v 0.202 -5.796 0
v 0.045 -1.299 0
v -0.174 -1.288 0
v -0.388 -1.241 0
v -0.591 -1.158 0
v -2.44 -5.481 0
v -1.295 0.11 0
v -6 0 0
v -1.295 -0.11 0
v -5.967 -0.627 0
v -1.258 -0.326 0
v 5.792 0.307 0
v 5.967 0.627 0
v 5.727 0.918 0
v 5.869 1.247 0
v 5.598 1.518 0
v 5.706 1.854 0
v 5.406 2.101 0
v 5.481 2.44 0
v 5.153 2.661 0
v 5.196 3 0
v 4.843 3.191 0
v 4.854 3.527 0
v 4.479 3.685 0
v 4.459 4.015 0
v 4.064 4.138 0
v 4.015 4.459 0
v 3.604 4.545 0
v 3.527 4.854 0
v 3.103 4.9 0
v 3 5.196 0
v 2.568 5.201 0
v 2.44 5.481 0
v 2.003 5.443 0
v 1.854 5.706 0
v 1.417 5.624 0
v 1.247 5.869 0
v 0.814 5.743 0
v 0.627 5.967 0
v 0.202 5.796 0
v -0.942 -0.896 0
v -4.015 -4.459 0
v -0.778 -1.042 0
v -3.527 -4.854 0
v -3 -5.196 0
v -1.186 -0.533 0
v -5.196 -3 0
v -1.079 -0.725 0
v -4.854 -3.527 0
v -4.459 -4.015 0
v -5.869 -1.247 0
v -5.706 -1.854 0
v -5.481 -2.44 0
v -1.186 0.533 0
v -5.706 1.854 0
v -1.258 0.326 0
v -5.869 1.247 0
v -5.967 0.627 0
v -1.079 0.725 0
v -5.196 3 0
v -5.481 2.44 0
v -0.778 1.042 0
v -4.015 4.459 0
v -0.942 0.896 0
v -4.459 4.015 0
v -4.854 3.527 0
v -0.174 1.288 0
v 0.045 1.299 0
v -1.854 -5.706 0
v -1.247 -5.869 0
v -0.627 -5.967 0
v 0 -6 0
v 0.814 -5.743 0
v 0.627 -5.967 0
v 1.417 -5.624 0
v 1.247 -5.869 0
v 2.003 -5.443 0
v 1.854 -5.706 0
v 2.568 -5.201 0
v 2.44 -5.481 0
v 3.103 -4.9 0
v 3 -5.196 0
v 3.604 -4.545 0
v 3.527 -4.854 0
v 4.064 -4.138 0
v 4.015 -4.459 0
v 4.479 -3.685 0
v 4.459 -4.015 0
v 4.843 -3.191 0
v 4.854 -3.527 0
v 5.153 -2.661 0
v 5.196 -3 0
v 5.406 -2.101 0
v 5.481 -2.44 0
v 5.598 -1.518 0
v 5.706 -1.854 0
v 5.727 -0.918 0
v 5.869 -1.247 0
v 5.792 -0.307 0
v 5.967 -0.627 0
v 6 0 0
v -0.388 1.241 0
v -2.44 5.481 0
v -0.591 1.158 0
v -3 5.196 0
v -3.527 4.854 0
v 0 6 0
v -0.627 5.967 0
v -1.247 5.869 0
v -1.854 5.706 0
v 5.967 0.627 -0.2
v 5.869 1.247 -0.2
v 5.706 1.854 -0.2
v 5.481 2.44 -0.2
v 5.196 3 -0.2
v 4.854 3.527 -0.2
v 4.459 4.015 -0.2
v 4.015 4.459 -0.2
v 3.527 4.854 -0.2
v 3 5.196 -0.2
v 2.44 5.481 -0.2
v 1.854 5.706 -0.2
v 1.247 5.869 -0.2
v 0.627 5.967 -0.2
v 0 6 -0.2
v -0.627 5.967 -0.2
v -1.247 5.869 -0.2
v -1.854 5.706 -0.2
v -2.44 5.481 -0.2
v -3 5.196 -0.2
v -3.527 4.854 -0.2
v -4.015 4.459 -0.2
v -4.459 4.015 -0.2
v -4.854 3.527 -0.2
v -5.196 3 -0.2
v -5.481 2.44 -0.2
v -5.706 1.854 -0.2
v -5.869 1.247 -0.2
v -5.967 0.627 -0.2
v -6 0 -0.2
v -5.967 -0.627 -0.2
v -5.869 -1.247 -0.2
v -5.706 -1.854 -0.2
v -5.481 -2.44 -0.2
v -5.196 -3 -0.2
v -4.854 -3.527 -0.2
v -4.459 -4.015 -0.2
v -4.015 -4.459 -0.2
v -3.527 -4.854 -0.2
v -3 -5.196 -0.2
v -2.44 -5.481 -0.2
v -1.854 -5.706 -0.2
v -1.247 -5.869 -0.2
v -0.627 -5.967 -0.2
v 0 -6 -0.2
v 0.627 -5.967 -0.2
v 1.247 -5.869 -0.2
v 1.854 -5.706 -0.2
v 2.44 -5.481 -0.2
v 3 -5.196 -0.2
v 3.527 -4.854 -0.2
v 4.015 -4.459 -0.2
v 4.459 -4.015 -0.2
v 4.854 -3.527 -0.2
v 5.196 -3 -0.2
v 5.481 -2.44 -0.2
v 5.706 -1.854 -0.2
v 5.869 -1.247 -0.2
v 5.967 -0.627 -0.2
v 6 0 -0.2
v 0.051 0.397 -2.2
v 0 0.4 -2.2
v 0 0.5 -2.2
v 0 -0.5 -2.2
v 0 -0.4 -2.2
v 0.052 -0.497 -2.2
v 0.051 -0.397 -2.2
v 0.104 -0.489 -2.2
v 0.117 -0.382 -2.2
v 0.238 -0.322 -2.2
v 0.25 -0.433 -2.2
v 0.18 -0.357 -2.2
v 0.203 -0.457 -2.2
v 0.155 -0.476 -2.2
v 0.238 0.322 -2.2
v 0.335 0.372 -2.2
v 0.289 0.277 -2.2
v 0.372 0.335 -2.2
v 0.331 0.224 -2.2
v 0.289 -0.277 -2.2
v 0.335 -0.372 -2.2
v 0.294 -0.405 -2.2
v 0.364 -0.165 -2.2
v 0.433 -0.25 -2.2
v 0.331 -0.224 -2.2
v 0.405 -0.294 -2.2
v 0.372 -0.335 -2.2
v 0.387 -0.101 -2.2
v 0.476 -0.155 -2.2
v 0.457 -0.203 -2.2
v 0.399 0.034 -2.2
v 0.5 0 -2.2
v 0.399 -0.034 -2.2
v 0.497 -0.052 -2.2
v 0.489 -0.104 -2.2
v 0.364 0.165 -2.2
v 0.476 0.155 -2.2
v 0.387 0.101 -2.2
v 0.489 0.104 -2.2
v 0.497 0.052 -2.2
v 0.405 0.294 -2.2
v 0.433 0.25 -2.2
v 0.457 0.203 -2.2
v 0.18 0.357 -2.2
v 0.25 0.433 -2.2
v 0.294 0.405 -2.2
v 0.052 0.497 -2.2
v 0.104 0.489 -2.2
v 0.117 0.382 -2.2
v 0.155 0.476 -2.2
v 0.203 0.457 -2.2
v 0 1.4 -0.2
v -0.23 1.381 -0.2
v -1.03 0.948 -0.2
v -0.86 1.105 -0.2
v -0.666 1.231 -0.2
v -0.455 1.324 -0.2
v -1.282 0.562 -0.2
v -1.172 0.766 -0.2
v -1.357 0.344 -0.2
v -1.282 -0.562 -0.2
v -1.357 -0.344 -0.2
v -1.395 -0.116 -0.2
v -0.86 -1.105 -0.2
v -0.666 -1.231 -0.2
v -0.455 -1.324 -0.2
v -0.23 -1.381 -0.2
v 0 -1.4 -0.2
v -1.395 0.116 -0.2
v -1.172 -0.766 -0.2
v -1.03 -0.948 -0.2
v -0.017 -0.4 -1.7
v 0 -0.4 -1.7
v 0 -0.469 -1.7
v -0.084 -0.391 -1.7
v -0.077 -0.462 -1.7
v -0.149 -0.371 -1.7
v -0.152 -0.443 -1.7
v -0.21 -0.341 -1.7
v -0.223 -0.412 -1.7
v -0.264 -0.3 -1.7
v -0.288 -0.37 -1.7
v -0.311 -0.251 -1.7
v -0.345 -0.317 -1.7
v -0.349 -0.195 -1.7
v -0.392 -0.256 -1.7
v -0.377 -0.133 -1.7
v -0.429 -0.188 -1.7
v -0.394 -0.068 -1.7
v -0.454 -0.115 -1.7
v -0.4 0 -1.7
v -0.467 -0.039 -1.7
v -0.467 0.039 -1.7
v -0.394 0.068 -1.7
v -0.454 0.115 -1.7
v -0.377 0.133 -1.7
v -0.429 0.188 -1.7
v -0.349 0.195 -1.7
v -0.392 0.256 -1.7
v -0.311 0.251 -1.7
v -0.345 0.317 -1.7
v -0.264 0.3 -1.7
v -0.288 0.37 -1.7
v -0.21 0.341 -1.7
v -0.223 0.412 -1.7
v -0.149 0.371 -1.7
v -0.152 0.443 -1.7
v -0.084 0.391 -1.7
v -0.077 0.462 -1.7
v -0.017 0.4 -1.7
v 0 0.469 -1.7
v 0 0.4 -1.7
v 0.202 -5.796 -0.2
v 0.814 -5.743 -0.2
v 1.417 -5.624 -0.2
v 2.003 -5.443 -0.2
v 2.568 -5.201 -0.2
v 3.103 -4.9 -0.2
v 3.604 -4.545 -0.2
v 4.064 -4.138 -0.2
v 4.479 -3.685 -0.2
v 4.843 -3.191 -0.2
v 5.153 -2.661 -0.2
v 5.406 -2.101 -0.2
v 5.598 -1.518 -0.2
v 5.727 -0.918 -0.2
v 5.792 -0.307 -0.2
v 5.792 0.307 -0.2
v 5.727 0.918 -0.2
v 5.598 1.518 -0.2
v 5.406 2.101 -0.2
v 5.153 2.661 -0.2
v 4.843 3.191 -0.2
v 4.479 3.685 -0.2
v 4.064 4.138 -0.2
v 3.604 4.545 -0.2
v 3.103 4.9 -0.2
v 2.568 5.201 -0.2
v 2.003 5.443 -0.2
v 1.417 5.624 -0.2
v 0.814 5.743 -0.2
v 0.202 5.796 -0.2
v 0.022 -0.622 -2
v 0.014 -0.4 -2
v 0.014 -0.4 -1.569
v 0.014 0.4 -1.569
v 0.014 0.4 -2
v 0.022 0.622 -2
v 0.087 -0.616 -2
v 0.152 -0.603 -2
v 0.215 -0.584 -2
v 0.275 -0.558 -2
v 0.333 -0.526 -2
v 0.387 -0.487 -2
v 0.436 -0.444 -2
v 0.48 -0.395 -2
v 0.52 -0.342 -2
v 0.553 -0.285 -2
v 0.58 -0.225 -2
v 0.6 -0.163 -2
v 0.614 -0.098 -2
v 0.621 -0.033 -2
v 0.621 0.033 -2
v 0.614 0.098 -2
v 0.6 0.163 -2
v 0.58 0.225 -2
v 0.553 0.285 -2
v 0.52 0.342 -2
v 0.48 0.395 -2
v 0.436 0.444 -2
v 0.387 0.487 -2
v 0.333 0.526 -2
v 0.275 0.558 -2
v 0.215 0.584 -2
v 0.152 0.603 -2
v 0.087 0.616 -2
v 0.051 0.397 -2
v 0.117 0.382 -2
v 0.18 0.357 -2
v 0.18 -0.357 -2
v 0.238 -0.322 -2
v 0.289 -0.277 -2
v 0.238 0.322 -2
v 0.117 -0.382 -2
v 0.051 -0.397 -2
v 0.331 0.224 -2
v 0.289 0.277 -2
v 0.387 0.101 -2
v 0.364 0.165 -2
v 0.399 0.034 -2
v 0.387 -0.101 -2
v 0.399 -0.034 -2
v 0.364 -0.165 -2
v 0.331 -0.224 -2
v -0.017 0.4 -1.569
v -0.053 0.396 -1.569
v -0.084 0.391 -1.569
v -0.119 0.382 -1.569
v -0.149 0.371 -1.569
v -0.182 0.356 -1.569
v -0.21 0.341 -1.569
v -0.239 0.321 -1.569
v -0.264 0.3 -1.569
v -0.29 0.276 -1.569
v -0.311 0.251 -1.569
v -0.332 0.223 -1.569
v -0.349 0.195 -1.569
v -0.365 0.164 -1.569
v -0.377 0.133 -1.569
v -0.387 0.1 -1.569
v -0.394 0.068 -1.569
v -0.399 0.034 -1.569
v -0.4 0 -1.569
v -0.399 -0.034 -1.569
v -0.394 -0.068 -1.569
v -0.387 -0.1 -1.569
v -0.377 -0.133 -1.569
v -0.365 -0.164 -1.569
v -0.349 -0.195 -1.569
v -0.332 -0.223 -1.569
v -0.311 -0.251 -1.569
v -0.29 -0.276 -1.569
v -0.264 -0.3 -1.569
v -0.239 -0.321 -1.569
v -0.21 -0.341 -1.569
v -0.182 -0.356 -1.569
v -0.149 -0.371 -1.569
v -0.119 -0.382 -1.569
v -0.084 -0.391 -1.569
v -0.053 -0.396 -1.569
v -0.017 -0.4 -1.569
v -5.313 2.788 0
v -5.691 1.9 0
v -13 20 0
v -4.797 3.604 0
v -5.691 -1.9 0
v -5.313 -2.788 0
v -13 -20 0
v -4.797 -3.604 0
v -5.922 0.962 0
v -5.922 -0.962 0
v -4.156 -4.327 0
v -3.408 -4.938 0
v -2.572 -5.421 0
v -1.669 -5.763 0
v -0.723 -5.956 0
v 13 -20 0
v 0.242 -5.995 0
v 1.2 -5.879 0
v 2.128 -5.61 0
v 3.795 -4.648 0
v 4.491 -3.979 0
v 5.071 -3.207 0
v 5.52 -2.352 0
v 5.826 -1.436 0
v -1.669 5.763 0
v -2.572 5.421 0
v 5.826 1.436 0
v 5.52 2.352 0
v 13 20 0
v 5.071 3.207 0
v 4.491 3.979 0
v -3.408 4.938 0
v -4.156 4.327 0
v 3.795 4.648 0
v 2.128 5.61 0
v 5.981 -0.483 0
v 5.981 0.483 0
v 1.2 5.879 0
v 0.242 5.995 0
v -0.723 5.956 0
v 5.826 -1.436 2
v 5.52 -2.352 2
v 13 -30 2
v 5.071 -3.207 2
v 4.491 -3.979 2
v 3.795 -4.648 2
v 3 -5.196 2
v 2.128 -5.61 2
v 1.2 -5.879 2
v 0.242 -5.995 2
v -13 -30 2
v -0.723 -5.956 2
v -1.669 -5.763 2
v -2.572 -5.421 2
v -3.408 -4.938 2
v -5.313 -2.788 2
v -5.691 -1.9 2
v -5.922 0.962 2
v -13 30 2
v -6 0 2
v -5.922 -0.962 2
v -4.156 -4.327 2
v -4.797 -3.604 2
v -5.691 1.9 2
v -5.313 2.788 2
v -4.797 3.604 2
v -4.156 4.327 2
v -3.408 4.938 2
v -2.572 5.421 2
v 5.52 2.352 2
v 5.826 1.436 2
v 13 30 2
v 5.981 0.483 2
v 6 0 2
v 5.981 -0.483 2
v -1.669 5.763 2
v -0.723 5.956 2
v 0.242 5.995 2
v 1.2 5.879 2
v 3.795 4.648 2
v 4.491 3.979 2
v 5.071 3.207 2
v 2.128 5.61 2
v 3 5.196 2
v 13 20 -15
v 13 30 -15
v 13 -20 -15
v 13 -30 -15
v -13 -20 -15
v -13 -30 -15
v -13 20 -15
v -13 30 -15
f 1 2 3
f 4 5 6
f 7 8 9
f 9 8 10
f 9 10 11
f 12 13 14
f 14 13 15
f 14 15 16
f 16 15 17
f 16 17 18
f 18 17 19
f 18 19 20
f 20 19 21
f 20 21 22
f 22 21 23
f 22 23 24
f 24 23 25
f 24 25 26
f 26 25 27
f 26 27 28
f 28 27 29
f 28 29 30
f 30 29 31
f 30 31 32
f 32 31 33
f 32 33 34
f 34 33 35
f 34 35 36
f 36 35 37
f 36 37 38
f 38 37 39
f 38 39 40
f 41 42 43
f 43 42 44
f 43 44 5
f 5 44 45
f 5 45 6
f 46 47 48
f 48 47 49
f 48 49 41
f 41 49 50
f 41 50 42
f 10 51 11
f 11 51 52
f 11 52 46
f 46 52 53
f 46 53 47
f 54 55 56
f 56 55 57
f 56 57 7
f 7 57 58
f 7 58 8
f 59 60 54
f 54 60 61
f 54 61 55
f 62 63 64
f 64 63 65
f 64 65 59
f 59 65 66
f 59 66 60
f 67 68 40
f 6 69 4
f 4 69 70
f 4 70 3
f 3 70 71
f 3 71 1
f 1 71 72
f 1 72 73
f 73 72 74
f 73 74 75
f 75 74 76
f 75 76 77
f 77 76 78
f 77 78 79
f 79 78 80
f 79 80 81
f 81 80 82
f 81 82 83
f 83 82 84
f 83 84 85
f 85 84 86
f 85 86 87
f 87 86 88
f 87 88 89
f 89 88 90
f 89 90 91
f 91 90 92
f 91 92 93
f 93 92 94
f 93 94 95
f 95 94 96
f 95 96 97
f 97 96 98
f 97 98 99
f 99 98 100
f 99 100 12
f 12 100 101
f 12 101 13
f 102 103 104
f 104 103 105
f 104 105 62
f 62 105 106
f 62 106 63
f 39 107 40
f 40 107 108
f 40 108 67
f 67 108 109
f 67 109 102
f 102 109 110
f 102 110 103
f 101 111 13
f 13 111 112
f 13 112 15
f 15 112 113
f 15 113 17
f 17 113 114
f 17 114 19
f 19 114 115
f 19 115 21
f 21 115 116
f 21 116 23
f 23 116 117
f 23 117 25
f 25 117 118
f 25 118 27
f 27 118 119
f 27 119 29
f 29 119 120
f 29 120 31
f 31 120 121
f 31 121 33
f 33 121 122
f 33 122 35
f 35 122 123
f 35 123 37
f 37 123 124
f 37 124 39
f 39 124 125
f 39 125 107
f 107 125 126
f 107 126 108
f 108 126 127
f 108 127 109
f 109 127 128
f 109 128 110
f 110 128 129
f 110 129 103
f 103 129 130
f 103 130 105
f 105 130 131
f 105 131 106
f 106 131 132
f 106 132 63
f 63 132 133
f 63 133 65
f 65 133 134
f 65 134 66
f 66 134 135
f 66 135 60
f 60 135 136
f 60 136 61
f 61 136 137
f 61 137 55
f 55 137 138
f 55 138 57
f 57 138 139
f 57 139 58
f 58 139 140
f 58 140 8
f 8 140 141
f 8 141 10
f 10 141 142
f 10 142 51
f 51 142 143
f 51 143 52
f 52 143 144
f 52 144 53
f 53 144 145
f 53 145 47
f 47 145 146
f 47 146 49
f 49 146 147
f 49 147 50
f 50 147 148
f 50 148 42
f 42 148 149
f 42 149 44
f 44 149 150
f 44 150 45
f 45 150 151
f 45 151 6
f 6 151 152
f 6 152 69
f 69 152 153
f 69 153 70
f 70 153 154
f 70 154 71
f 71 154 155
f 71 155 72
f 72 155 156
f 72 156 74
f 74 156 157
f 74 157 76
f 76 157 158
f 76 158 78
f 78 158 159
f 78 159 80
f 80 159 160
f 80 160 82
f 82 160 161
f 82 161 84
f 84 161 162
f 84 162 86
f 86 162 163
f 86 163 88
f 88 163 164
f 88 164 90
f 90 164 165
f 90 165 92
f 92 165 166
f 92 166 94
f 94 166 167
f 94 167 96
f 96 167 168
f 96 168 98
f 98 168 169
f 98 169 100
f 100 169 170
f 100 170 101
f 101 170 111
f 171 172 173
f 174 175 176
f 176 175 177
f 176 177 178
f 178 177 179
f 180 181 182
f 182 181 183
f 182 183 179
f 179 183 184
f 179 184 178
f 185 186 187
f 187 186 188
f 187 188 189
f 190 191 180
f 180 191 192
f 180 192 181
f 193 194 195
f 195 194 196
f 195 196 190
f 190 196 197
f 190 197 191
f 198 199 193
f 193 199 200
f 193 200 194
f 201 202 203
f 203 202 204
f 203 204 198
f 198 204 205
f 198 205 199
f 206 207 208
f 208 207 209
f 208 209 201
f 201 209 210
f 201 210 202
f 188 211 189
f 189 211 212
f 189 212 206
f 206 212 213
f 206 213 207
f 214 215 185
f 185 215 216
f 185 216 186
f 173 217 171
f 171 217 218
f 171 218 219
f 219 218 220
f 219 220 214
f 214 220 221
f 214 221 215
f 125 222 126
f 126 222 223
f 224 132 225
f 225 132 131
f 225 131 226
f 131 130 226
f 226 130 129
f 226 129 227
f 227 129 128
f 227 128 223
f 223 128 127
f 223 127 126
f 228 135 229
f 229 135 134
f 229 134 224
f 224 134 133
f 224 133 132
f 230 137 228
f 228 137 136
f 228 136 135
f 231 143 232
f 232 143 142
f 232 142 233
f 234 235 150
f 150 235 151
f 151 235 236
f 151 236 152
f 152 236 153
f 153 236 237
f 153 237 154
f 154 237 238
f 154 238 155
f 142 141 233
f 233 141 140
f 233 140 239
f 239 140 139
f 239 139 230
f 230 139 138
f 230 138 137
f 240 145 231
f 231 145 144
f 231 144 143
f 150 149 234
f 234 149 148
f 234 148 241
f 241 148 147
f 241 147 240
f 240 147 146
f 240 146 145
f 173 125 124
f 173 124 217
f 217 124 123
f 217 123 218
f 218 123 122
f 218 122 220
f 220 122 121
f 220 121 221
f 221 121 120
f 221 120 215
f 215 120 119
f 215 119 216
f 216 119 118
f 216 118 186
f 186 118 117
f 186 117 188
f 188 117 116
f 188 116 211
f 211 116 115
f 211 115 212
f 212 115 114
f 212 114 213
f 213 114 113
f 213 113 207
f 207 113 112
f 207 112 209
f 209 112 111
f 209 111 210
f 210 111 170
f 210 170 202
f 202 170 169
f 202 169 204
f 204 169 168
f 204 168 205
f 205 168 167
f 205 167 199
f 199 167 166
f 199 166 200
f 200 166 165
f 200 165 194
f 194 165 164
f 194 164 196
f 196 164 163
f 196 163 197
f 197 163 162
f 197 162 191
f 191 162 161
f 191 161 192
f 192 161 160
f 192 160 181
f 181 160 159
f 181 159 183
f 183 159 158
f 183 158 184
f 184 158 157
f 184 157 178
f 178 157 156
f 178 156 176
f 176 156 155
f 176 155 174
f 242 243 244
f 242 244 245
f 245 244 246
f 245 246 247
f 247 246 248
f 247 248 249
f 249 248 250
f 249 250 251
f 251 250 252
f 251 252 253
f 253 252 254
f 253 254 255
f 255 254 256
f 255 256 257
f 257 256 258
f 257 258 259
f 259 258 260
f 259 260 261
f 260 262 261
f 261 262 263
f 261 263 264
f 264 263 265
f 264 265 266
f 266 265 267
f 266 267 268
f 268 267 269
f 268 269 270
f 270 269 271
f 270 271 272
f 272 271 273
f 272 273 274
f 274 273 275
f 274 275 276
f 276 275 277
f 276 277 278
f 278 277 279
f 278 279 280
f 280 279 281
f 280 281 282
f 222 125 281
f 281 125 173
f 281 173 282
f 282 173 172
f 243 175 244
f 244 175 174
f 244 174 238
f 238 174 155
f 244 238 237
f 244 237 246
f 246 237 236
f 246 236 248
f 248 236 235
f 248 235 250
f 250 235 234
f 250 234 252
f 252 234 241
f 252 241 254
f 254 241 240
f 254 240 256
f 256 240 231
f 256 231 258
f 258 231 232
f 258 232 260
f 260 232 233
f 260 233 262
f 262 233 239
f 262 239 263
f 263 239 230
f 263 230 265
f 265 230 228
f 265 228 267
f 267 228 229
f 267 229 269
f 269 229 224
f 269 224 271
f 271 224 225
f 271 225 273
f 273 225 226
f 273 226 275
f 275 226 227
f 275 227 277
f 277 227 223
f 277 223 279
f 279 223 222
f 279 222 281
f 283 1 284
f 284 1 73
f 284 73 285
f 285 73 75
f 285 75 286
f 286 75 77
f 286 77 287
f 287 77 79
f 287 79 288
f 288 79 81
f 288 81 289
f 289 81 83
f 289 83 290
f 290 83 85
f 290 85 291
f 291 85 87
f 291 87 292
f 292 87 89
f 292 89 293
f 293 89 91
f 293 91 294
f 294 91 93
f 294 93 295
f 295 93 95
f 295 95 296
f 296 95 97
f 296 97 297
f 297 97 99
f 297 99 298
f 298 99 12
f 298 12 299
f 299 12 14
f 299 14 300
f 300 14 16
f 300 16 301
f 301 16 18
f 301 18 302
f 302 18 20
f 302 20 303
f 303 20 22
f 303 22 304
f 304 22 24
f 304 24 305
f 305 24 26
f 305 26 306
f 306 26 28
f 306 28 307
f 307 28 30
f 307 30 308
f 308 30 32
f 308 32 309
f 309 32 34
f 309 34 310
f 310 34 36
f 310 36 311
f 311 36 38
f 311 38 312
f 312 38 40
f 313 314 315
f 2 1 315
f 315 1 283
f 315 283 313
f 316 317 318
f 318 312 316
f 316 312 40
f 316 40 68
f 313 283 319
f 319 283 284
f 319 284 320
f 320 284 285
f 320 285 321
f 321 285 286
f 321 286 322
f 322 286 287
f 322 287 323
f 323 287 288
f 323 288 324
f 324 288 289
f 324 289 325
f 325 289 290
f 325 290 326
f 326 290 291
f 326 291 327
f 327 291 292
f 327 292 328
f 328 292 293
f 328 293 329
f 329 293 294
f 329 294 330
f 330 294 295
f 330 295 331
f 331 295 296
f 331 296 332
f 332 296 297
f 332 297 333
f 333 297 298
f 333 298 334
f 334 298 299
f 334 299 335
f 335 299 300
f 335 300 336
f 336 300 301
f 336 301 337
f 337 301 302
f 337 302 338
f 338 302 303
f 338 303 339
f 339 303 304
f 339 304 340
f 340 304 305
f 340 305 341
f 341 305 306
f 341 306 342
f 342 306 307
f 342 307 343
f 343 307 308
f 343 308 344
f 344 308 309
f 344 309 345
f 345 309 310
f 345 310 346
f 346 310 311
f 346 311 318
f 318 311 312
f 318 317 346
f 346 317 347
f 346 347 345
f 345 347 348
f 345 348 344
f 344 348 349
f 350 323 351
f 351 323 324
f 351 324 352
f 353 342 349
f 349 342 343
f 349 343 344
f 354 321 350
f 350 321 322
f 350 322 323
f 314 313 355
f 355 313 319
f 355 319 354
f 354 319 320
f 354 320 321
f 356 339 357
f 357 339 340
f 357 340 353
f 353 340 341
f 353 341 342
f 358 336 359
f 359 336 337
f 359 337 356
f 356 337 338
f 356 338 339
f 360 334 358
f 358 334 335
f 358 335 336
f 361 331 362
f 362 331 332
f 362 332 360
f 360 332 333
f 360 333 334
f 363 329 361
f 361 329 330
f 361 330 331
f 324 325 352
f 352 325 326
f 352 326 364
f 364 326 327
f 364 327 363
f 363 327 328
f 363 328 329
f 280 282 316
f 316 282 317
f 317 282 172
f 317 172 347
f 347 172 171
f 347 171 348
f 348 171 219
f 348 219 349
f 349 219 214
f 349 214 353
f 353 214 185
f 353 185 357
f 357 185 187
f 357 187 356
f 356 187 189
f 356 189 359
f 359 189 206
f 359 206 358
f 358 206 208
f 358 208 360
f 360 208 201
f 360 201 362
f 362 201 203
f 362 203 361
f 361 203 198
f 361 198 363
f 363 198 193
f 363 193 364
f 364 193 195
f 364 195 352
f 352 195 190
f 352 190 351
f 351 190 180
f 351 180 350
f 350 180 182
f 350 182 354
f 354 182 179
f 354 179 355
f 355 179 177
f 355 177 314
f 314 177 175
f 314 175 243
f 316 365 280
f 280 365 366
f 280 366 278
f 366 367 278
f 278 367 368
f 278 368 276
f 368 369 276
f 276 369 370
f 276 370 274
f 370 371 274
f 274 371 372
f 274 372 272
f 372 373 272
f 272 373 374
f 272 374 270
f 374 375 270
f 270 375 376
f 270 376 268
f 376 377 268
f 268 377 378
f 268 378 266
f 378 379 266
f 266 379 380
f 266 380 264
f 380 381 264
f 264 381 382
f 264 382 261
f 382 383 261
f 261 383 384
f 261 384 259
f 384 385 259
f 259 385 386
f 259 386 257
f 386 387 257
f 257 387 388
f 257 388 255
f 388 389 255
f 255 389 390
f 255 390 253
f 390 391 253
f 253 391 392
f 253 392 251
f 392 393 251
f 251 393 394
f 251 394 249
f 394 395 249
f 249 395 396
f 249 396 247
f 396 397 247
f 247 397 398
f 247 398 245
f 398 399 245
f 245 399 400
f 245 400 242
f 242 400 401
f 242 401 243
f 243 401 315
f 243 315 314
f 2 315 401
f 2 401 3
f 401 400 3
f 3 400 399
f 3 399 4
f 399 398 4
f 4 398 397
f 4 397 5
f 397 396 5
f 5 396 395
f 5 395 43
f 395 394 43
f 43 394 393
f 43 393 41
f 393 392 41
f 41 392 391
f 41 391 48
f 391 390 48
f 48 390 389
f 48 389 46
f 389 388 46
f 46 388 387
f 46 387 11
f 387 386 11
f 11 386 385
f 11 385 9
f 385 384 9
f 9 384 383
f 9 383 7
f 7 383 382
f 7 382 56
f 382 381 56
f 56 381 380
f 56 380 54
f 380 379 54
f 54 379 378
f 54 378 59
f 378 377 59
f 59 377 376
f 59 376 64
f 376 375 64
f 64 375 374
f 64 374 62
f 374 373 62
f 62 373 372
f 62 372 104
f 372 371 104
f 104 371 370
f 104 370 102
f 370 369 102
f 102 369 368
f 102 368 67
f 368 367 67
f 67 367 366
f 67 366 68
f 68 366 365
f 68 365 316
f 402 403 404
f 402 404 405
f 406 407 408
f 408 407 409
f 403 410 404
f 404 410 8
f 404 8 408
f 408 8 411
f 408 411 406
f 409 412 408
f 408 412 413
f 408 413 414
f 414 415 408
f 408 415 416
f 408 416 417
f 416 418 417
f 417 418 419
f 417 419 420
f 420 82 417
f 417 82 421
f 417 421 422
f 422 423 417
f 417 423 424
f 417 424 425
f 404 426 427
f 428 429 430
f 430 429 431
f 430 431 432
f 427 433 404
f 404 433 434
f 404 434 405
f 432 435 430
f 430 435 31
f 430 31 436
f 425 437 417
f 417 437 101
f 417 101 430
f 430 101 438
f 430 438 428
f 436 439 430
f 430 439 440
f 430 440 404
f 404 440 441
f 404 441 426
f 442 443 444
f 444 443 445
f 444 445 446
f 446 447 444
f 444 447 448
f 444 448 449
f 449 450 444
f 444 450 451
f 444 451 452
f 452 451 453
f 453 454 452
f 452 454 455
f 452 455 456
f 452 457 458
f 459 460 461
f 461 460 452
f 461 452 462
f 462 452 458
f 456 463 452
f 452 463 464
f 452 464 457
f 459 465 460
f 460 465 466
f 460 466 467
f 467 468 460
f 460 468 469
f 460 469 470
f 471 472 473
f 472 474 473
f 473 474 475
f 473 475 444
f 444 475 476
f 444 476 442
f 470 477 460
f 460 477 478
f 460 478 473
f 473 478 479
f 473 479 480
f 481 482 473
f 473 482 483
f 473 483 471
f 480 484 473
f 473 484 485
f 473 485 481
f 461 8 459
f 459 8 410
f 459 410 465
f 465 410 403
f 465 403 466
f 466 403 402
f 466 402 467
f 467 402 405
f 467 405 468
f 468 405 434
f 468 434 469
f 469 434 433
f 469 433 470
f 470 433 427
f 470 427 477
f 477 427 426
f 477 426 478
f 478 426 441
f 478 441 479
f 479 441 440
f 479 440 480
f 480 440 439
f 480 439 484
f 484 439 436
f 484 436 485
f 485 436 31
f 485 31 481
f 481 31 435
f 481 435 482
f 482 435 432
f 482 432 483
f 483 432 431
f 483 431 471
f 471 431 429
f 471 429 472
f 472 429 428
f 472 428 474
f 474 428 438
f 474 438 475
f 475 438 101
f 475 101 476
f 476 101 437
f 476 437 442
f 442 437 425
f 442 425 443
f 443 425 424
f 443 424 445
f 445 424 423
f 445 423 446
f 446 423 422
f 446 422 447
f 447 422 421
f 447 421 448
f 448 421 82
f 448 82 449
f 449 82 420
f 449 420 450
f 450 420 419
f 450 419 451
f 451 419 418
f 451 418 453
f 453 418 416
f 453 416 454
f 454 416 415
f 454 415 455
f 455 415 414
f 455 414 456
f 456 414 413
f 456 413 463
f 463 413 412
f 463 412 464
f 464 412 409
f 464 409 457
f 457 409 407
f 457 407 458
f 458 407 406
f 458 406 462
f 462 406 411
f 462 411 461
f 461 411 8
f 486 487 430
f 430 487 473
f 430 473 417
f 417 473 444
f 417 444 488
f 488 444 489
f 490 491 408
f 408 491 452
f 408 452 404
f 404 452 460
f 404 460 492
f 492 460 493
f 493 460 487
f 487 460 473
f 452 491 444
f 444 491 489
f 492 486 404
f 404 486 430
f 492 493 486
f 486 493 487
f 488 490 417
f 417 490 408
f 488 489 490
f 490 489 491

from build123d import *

# Parameters (mm, degrees)
SKETCH_1_W                    = 60
SKETCH_1_H                    = 26
SKETCH_1_R                    = 6
EXTRUDE_1_DEPTH               = 2
SKETCH_3_R                    = 6
EXTRUDE_3_DEPTH               = 2.2
SKETCH_5_W                    = 4.6
SKETCH_5_H                    = 2
CUT_EXTRUDE_1_DEPTH           = 6
SKETCH_7_R                    = 0.2
CUT_EXTRUDE_2_DEPTH           = 12
CUT_REVOLVE_4_ANGLE           = 90
CUT_REVOLVE_4_OTHER_WAY_ANGLE = 90
CUT_REVOLVE_5_ANGLE           = 90
CUT_REVOLVE_5_OTHER_WAY_ANGLE = 90
CUT_REVOLVE_6_ANGLE           = 88
CUT_REVOLVE_6_OTHER_WAY_ANGLE = 88
SKETCH_16_R                   = 0.4
CUT_EXTRUDE_4_DEPTH           = 0.7
SKETCH_20_W                   = 17
SKETCH_20_H                   = 26
CUT_EXTRUDE_5_DEPTH           = 10
SKETCH_21_W                   = 26
SKETCH_21_H                   = 2
EXTRUDE_4_DEPTH               = 17
SKETCH_22_W                   = 26
SKETCH_22_H                   = 2
EXTRUDE_6_DEPTH               = 17
SKETCH_23_W                   = 26
SKETCH_23_H                   = 10
EXTRUDE_7_DEPTH               = 15


with BuildPart() as part:
    # 草图1 → 凸台-拉伸1 (new body)
    with BuildSketch(Plane.XY):
        Rectangle(SKETCH_1_W, SKETCH_1_H)
        Circle(SKETCH_1_R, mode=Mode.SUBTRACT)
    extrude(amount=EXTRUDE_1_DEPTH)

    # 草图20 → 切除-拉伸5 (cut)
    with BuildSketch(Plane.XY.offset(2)):
        with Locations((-21.5, 0)):
            Rectangle(SKETCH_20_W, SKETCH_20_H)
        with Locations((21.5, 0)):
            Rectangle(SKETCH_20_W, SKETCH_20_H)
    extrude(amount=-CUT_EXTRUDE_5_DEPTH, mode=Mode.SUBTRACT)

    # 草图21 → 凸台-拉伸4 (add)
    with BuildSketch(Plane(origin=(0, 13, 0), x_dir=(1, 0, 0), z_dir=(0, 1, 0))):
        with Locations((0, -1)):
            Rectangle(SKETCH_21_W, SKETCH_21_H)
    extrude(amount=EXTRUDE_4_DEPTH)

    # 草图22 → 凸台-拉伸6 (add)
    with BuildSketch(Plane.XZ.offset(13)):
        with Locations((0, 1)):
            Rectangle(SKETCH_22_W, SKETCH_22_H)
    extrude(amount=EXTRUDE_6_DEPTH)

    # 草图23 → 凸台-拉伸7 (add)
    with BuildSketch(Plane(origin=(0, 0, 0), x_dir=(-1, 0, 0), z_dir=(0, 0, -1))):
        with Locations((0, 25)):
            Rectangle(SKETCH_23_W, SKETCH_23_H)
        with Locations((0, -25)):
            Rectangle(SKETCH_23_W, SKETCH_23_H)
    extrude(amount=EXTRUDE_7_DEPTH)


with BuildPart() as body_2:
    # 草图3 → 凸台-拉伸3 (new body)
    with BuildSketch(Plane(origin=(0, 0, 0), x_dir=(-1, 0, 0), z_dir=(0, 0, -1))):
        Circle(SKETCH_3_R)
    extrude(amount=EXTRUDE_3_DEPTH)

    # 草图5 → 切除-拉伸1 (cut, symmetric)
    with BuildSketch(Plane(origin=(0, 0, 0), x_dir=(1, 0, 0), z_dir=(0, 1, 0))):
        with Locations((-3.7, 1.2)):
            Rectangle(SKETCH_5_W, SKETCH_5_H)
    extrude(amount=CUT_EXTRUDE_1_DEPTH, both=True, mode=Mode.SUBTRACT)

    # 草图7 → 切除-拉伸2 (cut)
    with BuildSketch(Plane(origin=(0, 0, -2.2), x_dir=(-1, 0, 0), z_dir=(0, 0, -1))):
        Circle(SKETCH_7_R)
    extrude(amount=-CUT_EXTRUDE_2_DEPTH, mode=Mode.SUBTRACT)

    # 草图6 → 切除-旋转4 (revolve, cut)
    with BuildSketch(Plane(origin=(0, 0, 0), x_dir=(1, 0, 0), z_dir=(0, 1, 0))):
        Polygon((0.5, 2.2), (6, 2.2), (6, 0.2), align=None)
    revolve(axis=Axis((0, 0, 0), (0, 0, -1)), revolution_arc=CUT_REVOLVE_4_ANGLE, mode=Mode.SUBTRACT)

    # 草图6 → 切除-旋转4 other way (revolve, cut)
    with BuildSketch(Plane(origin=(0, 0, 0), x_dir=(1, 0, 0), z_dir=(0, 1, 0))):
        Polygon((0.5, 2.2), (6, 2.2), (6, 0.2), align=None)
    revolve(axis=Axis((0, 0, 0), (0, 0, 1)), revolution_arc=CUT_REVOLVE_4_OTHER_WAY_ANGLE, mode=Mode.SUBTRACT)

    # 草图9 → 切除-旋转5 (revolve, cut)
    with BuildSketch(Plane(origin=(0, 0, 0), x_dir=(1, 0, 0), z_dir=(0, 1, 0))):
        Polygon((-1.4, 2.2), (-6, 2.2), (-6, 0.2), (-1.4, 0.2), (-0.468510194, 1.7), (0, 1.7), (0, 2.2), align=None)
    revolve(axis=Axis((0, 0, -1.7), (0, 0, 1)), revolution_arc=CUT_REVOLVE_5_ANGLE, mode=Mode.SUBTRACT)

    # 草图9 → 切除-旋转5 other way (revolve, cut)
    with BuildSketch(Plane(origin=(0, 0, 0), x_dir=(1, 0, 0), z_dir=(0, 1, 0))):
        Polygon((-1.4, 2.2), (-6, 2.2), (-6, 0.2), (-1.4, 0.2), (-0.468510194, 1.7), (0, 1.7), (0, 2.2), align=None)
    revolve(axis=Axis((0, 0, -1.7), (0, 0, -1)), revolution_arc=CUT_REVOLVE_5_OTHER_WAY_ANGLE, mode=Mode.SUBTRACT)

    # 草图12 → 切除-旋转6 (revolve, cut)
    with BuildSketch(Plane(origin=(0, 0, 0), x_dir=(1, 0, 0), z_dir=(0, 1, 0))):
        Polygon((5.8, 0.2), (0.622155655, 2), (0.2, 2), (0.2, 0.2), (0.2, -0.434939874), (5.8, -0.434939874), align=None)
    revolve(axis=Axis((0, 0, -2.2), (0, 0, -1)), revolution_arc=CUT_REVOLVE_6_ANGLE, mode=Mode.SUBTRACT)

    # 草图12 → 切除-旋转6 other way (revolve, cut)
    with BuildSketch(Plane(origin=(0, 0, 0), x_dir=(1, 0, 0), z_dir=(0, 1, 0))):
        Polygon((5.8, 0.2), (0.622155655, 2), (0.2, 2), (0.2, 0.2), (0.2, -0.434939874), (5.8, -0.434939874), align=None)
    revolve(axis=Axis((0, 0, -2.2), (0, 0, 1)), revolution_arc=CUT_REVOLVE_6_OTHER_WAY_ANGLE, mode=Mode.SUBTRACT)

    # 草图16 → 切除-拉伸4 (cut)
    with BuildSketch(Plane(origin=(0, 0, -2.2), x_dir=(-1, 0, 0), z_dir=(0, 0, -1))):
        with Locations(Location((0, 0, 0), (0, 0, 270))):
            Circle(SKETCH_16_R)
    extrude(amount=-CUT_EXTRUDE_4_DEPTH, mode=Mode.SUBTRACT)

    # 草图19 → 切除-旋转8 (revolve, cut)
    with BuildSketch(Plane(origin=(0, 0, 0), x_dir=(1, 0, 0), z_dir=(0, 1, 0)), mode=Mode.PRIVATE) as cut_revolve_8_sk:
        Polygon((-0.4, 1.568775044), (0, 1.568775044), (0, 0), (-1.3, 0), align=None)
    revolve(cut_revolve_8_sk.sketch.rotate(Axis((0, 0, 0), (0, 0, 1)), 270), axis=Axis((0, 0, 0), (0, 0, 1)), mode=Mode.SUBTRACT)


solid = Compound([part.part, body_2.part])
